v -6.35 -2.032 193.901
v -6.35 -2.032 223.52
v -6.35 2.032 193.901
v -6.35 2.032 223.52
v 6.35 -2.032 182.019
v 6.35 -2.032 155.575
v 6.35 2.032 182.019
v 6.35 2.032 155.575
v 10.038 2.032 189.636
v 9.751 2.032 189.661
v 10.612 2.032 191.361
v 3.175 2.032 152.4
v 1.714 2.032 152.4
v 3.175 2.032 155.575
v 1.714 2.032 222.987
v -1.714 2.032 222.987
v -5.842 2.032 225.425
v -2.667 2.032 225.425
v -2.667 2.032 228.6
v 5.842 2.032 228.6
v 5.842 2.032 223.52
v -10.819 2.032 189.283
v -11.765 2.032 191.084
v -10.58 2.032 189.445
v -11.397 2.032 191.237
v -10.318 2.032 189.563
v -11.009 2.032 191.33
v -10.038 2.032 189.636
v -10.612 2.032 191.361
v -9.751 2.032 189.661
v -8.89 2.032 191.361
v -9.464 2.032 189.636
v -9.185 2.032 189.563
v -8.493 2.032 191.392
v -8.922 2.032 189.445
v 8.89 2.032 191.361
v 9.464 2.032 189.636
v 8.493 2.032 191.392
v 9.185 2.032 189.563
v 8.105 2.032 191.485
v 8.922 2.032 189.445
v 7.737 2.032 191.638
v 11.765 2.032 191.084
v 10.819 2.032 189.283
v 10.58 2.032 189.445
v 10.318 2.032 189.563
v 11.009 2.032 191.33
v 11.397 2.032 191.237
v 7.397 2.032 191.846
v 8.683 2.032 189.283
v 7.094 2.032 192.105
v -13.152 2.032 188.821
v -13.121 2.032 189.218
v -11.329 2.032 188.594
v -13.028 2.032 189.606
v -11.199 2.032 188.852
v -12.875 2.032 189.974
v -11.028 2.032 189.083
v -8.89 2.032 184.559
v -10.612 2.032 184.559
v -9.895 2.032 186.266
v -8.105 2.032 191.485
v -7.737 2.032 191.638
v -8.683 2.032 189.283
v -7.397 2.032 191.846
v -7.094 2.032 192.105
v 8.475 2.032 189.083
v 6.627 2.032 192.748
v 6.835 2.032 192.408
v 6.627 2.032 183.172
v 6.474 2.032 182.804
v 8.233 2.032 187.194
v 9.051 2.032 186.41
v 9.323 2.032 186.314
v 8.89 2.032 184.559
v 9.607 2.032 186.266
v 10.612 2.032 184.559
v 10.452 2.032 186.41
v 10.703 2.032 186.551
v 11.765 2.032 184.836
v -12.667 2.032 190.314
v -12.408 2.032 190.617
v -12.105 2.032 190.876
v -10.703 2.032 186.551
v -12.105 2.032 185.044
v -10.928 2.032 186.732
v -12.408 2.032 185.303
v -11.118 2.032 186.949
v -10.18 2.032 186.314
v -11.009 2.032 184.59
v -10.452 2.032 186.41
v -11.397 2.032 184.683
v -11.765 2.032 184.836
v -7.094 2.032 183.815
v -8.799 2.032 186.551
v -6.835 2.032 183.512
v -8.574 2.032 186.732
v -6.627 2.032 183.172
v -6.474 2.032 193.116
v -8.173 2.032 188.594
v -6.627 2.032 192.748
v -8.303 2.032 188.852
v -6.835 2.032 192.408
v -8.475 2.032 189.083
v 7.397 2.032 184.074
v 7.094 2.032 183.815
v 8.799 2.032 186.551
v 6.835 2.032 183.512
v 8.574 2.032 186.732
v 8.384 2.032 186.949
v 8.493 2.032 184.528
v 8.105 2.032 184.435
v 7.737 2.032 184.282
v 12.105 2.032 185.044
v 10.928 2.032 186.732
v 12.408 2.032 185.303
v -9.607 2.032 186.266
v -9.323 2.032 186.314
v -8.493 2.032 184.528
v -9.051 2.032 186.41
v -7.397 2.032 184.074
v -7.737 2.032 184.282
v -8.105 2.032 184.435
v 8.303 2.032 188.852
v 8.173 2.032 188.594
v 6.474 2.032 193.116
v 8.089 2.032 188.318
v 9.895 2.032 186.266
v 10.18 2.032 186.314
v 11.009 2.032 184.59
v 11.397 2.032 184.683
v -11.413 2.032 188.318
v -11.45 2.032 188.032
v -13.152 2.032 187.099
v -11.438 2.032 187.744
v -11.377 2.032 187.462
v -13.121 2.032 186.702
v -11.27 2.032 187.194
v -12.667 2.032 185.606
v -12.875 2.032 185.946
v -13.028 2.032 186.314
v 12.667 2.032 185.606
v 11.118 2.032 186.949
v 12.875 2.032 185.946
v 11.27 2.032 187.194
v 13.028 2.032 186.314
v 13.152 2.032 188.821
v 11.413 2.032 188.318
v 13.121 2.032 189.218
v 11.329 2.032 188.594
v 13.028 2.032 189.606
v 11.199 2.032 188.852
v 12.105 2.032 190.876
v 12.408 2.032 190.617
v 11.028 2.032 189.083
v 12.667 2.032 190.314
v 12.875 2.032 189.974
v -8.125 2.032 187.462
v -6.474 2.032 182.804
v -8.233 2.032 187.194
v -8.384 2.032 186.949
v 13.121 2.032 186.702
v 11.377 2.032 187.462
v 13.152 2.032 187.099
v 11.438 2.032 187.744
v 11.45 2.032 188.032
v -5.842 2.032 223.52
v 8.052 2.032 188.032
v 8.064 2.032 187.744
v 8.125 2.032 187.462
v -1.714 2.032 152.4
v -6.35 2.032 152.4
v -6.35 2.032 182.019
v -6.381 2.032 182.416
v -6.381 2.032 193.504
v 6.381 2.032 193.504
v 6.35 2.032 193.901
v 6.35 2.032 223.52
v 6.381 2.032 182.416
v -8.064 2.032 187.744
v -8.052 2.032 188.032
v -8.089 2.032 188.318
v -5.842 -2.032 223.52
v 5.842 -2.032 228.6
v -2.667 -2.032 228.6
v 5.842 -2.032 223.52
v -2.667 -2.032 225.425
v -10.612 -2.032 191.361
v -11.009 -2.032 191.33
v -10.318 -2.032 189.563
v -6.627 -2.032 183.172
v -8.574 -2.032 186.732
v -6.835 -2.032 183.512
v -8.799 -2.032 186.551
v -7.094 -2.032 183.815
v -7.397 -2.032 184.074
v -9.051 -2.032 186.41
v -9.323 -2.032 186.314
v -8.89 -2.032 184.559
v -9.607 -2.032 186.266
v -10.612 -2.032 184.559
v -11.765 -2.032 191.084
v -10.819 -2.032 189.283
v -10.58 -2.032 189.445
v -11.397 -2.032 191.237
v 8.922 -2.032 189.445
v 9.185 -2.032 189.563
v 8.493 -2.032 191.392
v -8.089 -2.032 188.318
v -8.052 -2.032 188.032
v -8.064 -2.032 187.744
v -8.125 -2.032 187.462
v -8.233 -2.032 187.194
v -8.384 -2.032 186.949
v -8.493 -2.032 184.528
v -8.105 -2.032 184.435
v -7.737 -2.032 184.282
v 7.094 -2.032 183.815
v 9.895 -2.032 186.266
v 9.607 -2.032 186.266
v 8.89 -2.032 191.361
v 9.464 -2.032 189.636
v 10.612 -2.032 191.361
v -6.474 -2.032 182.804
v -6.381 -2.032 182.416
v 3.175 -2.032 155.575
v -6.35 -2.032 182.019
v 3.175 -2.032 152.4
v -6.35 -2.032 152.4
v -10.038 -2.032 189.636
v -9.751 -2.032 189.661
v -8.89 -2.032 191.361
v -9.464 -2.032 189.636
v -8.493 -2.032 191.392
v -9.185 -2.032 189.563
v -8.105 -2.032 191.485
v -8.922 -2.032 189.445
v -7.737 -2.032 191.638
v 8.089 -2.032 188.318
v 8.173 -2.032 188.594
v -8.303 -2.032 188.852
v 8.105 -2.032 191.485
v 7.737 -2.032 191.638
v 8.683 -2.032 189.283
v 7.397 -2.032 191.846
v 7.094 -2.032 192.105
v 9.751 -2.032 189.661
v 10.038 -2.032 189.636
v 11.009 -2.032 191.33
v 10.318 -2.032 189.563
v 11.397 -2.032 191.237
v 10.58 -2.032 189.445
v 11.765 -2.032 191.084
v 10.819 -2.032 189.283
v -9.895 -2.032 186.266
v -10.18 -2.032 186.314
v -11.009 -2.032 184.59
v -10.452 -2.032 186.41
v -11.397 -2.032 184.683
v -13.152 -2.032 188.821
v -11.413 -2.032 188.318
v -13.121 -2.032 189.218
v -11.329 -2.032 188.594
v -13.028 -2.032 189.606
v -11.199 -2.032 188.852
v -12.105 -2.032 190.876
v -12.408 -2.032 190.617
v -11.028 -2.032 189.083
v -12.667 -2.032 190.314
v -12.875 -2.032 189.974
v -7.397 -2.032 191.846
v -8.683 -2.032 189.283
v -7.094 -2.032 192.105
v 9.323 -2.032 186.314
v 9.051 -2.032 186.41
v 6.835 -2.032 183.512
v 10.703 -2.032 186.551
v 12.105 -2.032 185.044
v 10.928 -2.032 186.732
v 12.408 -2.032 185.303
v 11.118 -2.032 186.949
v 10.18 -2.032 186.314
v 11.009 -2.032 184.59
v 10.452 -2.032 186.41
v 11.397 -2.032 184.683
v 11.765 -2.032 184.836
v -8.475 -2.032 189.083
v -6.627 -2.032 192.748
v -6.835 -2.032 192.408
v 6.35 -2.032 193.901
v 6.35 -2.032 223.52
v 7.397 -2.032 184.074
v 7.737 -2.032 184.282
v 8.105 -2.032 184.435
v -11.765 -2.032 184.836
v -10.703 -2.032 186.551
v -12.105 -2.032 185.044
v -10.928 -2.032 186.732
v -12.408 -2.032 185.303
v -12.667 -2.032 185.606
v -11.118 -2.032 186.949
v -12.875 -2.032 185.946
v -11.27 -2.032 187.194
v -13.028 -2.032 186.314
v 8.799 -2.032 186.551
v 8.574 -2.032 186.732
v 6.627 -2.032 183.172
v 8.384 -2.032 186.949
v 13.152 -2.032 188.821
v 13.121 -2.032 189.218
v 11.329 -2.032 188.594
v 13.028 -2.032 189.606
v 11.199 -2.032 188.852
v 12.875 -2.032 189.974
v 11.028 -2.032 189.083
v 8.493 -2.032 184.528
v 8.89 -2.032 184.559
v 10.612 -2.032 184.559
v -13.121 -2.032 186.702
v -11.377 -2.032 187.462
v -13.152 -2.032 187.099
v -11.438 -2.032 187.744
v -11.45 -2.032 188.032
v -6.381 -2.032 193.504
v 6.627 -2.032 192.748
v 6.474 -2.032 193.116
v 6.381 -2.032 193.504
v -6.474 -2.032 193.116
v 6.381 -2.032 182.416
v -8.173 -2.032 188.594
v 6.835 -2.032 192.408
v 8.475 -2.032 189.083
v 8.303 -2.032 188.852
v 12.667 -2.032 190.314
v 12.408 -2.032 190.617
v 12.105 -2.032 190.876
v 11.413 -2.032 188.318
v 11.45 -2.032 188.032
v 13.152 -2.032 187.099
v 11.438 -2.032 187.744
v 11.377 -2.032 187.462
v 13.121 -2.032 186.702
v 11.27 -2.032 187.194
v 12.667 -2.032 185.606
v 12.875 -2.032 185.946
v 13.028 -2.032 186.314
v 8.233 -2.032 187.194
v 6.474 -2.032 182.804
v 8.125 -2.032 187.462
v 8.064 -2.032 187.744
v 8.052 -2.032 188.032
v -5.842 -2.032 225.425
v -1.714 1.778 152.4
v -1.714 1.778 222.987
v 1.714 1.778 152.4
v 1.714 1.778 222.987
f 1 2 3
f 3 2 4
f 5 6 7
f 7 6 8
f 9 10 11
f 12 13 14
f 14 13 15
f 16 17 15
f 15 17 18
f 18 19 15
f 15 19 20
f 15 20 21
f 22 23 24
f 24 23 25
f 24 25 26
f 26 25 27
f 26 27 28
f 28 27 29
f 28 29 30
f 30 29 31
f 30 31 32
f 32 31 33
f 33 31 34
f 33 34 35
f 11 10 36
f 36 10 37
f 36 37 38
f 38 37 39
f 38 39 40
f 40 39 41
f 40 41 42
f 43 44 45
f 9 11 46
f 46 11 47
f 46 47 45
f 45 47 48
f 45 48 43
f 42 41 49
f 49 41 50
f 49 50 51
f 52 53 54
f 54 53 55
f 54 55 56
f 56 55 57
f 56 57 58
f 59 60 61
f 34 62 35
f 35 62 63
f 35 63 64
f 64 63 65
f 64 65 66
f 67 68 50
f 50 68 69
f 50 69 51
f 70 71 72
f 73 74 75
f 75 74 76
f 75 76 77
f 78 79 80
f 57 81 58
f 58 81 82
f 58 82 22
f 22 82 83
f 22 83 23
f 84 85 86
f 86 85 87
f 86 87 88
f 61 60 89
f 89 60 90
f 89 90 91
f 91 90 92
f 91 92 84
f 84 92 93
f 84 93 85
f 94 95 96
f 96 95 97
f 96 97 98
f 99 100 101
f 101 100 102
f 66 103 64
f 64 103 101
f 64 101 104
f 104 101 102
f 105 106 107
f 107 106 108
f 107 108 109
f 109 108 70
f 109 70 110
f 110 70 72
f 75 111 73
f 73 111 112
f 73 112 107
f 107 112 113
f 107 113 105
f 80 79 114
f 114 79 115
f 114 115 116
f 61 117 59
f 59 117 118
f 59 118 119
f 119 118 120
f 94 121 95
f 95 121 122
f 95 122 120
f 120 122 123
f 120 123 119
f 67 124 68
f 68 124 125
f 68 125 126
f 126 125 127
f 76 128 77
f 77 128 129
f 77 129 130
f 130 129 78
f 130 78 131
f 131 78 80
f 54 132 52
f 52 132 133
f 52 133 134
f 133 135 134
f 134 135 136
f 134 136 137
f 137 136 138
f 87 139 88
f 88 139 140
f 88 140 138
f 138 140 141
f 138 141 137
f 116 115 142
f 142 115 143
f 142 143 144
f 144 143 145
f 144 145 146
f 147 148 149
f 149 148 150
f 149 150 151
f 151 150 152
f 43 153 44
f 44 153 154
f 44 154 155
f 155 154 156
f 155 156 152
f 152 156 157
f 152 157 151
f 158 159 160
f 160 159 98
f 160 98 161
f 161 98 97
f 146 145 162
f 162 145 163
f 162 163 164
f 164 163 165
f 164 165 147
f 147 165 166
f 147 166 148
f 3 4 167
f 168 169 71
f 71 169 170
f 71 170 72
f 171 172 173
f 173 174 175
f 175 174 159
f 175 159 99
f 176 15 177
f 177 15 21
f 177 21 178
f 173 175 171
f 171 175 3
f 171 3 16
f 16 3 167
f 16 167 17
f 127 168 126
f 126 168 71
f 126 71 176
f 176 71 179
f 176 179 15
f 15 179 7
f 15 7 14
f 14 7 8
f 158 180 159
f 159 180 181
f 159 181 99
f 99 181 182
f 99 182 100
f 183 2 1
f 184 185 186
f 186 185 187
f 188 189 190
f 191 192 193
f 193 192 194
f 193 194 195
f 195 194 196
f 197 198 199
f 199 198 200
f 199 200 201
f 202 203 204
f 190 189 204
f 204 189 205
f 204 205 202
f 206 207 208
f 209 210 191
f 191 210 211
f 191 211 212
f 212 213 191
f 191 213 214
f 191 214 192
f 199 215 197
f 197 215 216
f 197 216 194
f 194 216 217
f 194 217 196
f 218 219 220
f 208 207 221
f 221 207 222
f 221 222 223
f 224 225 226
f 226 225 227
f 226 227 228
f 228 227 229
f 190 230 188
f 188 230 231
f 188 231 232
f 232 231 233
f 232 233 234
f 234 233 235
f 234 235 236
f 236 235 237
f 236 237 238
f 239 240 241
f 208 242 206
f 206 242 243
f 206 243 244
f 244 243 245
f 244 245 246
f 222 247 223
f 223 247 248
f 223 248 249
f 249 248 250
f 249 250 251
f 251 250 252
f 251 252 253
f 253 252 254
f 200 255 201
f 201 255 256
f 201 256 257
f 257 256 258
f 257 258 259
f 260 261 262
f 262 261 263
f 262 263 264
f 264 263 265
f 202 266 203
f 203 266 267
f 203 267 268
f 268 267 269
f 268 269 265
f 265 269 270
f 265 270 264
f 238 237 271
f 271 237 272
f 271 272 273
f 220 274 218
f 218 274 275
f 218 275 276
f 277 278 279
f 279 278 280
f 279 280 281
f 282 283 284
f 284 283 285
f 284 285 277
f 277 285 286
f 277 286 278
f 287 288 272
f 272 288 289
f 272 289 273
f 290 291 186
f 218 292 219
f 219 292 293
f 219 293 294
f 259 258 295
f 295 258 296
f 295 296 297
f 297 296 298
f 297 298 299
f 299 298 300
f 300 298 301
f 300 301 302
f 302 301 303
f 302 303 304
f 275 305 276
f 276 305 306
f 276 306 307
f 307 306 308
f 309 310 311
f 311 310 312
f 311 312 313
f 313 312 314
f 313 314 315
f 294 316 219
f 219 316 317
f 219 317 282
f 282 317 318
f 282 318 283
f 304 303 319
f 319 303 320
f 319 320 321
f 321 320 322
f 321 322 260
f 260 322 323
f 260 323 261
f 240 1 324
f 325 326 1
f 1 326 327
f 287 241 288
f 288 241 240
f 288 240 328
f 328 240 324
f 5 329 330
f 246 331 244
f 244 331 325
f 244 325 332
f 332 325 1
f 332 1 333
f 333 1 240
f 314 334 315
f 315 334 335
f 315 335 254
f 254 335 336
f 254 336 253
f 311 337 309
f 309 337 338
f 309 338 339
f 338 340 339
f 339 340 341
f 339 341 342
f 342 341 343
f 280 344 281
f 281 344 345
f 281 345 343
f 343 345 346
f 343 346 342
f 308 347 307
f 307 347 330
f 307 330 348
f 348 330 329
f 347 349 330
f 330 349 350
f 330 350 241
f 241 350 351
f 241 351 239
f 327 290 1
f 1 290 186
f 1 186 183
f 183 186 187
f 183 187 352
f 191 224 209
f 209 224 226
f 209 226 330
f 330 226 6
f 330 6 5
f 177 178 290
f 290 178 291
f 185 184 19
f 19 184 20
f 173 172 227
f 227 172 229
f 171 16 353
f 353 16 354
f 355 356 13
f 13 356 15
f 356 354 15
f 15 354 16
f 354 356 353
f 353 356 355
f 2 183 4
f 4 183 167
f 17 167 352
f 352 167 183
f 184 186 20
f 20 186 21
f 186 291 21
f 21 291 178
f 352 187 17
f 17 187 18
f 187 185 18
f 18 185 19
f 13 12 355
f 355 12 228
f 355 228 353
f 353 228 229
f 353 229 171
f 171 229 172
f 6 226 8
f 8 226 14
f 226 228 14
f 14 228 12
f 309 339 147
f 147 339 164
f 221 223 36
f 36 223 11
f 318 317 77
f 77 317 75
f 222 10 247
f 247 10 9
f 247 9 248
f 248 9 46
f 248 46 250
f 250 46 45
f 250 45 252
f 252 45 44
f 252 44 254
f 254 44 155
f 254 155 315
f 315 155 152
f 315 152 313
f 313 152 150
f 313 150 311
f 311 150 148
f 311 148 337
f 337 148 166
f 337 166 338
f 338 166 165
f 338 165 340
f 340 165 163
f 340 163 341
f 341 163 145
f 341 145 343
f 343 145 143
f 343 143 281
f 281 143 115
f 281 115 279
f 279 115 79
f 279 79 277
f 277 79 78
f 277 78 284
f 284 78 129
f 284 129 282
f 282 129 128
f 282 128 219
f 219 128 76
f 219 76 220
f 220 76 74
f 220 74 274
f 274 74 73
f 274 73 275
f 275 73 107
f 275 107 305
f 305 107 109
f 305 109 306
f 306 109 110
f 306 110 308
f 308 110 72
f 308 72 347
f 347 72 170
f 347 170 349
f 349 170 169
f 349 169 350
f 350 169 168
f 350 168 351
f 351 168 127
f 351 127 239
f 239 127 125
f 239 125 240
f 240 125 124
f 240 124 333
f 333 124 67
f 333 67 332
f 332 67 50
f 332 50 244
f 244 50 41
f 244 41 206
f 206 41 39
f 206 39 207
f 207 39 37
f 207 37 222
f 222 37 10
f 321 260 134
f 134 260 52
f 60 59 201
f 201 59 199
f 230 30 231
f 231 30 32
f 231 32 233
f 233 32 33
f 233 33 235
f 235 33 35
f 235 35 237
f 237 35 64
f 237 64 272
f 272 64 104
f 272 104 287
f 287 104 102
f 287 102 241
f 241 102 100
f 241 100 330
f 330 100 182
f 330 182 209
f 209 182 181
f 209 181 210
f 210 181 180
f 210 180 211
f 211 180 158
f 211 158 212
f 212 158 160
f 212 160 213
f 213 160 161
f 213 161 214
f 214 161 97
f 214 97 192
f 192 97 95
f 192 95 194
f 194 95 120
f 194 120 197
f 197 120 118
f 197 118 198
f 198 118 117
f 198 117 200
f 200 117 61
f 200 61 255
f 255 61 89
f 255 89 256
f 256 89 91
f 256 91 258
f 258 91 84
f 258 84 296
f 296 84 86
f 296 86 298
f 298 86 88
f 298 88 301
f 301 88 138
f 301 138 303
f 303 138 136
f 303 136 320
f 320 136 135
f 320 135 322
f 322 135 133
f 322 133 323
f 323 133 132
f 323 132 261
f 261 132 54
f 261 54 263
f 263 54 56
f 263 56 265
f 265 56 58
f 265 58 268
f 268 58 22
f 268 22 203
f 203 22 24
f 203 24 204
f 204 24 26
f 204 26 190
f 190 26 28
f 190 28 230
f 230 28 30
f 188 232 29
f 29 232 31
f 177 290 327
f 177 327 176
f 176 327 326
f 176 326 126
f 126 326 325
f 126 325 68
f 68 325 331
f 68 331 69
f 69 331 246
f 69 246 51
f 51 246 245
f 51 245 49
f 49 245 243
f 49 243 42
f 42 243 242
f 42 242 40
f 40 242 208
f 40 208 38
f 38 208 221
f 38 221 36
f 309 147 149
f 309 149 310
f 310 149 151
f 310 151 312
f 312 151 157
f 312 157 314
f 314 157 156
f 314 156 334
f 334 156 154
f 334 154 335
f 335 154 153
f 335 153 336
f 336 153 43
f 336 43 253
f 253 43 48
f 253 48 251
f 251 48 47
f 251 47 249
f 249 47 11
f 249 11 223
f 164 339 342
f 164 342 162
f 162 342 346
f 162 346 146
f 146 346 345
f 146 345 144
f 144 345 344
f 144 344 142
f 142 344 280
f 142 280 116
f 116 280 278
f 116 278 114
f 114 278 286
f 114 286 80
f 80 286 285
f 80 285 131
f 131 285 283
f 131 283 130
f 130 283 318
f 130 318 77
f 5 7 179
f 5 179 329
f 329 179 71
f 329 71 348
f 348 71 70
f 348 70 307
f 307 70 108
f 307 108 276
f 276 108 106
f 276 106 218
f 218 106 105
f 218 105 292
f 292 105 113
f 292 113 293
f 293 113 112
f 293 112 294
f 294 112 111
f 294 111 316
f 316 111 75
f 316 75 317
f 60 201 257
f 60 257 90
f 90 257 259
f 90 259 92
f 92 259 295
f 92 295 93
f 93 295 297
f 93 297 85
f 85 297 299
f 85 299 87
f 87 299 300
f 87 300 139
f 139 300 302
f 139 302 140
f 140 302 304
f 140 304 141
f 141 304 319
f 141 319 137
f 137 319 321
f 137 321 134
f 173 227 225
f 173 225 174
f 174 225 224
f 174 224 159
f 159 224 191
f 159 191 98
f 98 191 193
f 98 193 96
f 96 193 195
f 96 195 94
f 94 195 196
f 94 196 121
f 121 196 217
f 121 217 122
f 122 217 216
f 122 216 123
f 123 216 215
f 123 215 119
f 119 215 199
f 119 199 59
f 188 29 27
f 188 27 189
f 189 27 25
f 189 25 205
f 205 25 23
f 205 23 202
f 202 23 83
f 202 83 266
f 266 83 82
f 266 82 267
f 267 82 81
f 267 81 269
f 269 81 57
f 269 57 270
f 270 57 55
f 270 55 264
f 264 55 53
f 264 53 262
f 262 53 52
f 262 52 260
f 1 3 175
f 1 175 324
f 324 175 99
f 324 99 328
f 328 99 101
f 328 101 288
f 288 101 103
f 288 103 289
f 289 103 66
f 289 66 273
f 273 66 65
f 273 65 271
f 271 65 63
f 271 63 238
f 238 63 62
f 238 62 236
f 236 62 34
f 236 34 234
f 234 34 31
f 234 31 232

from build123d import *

# Parameters (mm, degrees)
SKETCH1_W               = 12.7
SKETCH1_H               = 4.064
BOSS_EXTRUDE1_DEPTH     = 228.6
SKETCH2_W               = 3.429
SKETCH2_H               = 217.3732
CUT_EXTRUDE1_DEPTH      = 0.254
SKETCH3_W               = 0.508
SKETCH3_H               = 5.08
CUT_EXTRUDE2_DEPTH      = 229.724285103
MIRROR2_COPY_1_SKETCH_W = 0.508
MIRROR2_COPY_1_SKETCH_H = 5.08
MIRROR2_COPY_1_DEPTH    = 229.724285103
SKETCH4_W               = 3.175
SKETCH4_H               = 3.175
CUT_EXTRUDE3_DEPTH      = 229.724285103
CUT_EXTRUDE4_DEPTH      = 229.724285103
SKETCH7_W               = 6.80212
SKETCH7_H               = 6.80212
SKETCH7_R               = 1.70053
BOSS_EXTRUDE2_DEPTH     = 4.064
FILLET1_R               = 2.54


with BuildPart() as part:
    # Sketch1 → Boss-Extrude1 (new body)
    with BuildSketch(Plane.XY):
        Rectangle(SKETCH1_W, SKETCH1_H)
    extrude(amount=BOSS_EXTRUDE1_DEPTH)

    # Sketch2 → Cut-Extrude1 (cut)
    with BuildSketch(Plane(origin=(0, 2.032, 0), x_dir=(1, 0, 0), z_dir=(0, 1, 0))):
        with Locations((0, -114.3)):
            Rectangle(SKETCH2_W, SKETCH2_H)
    extrude(amount=-CUT_EXTRUDE1_DEPTH, mode=Mode.SUBTRACT)

    # Sketch3 → Cut-Extrude2 (cut, through all)
    with BuildSketch(Plane(origin=(0, 2.032, 0), x_dir=(1, 0, 0), z_dir=(0, 1, 0))):
        with Locations((-6.096, -226.06)):
            Rectangle(SKETCH3_W, SKETCH3_H)
    cut_extrude2 = extrude(amount=-CUT_EXTRUDE2_DEPTH, mode=Mode.SUBTRACT)

    # Mirror1: Cut-Extrude2 across plane
    add(cut_extrude2.mirror(Plane(origin=(0, 0, 114.3), x_dir=(1, 0, 0), z_dir=(0, 0, -1))), mode=Mode.SUBTRACT)

    # Mirror2: Cut-Extrude2 across plane
    add(cut_extrude2.mirror(Plane(origin=(0, 0, 0), x_dir=(0, 0, 1), z_dir=(1, 0, 0))), mode=Mode.SUBTRACT)

    # Mirror2 copy 1 sketch → Mirror2 copy 1 (cut, through all)
    with BuildSketch(Plane(origin=(0, 2.032, 228.6), x_dir=(-1, 0, 0), z_dir=(0, 1, 0))):
        with Locations((-6.096, -226.06)):
            Rectangle(MIRROR2_COPY_1_SKETCH_W, MIRROR2_COPY_1_SKETCH_H)
    extrude(amount=-MIRROR2_COPY_1_DEPTH, mode=Mode.SUBTRACT)

    # Sketch4 → Cut-Extrude3 (cut, through all)
    with BuildSketch(Plane(origin=(0, 2.032, 0), x_dir=(1, 0, 0), z_dir=(0, 1, 0))):
        with Locations((-4.2545, -227.0125)):
            Rectangle(SKETCH4_W, SKETCH4_H)
    extrude(amount=-CUT_EXTRUDE3_DEPTH, mode=Mode.SUBTRACT)

    # Sketch5 → Cut-Extrude4 (cut, through all)
    with BuildSketch(Plane(origin=(0, 2.032, 0), x_dir=(1, 0, 0), z_dir=(0, 1, 0))):
        Polygon((-6.35, 0), (6.35, 0), (6.35, -152.4), (6.35, -155.575), (3.175, -155.575), (3.175, -152.4), (-6.35, -152.4), align=None)
    extrude(amount=-CUT_EXTRUDE4_DEPTH, mode=Mode.SUBTRACT)

    # Sketch7 → Boss-Extrude2 (add, through all)
    # profile 1 of 2: a face of its own
    with BuildSketch(Plane(origin=(0, 2.032, 0), x_dir=(1, 0, 0), z_dir=(0, 1, 0))):
        with Locations((9.75106, -187.96)):
            Rectangle(SKETCH7_W, SKETCH7_H)
        with Locations(Location((9.75106, -187.96, 0), (0, 0, 270))):
            Circle(SKETCH7_R, mode=Mode.SUBTRACT)
    # profile 2 of 2: a face of its own
    with BuildSketch(Plane(origin=(0, 2.032, 0), x_dir=(1, 0, 0), z_dir=(0, 1, 0))):
        with Locations((-9.75106, -187.96)):
            Rectangle(SKETCH7_W, SKETCH7_H)
        with Locations(Location((-9.75106, -187.96, 0), (0, 0, 270))):
            Circle(SKETCH7_R, mode=Mode.SUBTRACT)
    extrude(amount=-BOSS_EXTRUDE2_DEPTH)

    # Fillet1
    fillet1_edges = [part.edges().sort_by_distance(p)[0] for p in [
        (6.35, 0, 191.36106),
        (13.15212, 0, 191.36106),
        (13.15212, 0, 184.55894),
        (6.35, 0, 184.55894),
        (-13.15212, 0, 184.55894),
        (-6.35, 0, 184.55894),
        (-13.15212, 0, 191.36106),
        (-6.35, 0, 191.36106),
    ]]
    fillet(fillet1_edges, radius=FILLET1_R)


solid = part.part
